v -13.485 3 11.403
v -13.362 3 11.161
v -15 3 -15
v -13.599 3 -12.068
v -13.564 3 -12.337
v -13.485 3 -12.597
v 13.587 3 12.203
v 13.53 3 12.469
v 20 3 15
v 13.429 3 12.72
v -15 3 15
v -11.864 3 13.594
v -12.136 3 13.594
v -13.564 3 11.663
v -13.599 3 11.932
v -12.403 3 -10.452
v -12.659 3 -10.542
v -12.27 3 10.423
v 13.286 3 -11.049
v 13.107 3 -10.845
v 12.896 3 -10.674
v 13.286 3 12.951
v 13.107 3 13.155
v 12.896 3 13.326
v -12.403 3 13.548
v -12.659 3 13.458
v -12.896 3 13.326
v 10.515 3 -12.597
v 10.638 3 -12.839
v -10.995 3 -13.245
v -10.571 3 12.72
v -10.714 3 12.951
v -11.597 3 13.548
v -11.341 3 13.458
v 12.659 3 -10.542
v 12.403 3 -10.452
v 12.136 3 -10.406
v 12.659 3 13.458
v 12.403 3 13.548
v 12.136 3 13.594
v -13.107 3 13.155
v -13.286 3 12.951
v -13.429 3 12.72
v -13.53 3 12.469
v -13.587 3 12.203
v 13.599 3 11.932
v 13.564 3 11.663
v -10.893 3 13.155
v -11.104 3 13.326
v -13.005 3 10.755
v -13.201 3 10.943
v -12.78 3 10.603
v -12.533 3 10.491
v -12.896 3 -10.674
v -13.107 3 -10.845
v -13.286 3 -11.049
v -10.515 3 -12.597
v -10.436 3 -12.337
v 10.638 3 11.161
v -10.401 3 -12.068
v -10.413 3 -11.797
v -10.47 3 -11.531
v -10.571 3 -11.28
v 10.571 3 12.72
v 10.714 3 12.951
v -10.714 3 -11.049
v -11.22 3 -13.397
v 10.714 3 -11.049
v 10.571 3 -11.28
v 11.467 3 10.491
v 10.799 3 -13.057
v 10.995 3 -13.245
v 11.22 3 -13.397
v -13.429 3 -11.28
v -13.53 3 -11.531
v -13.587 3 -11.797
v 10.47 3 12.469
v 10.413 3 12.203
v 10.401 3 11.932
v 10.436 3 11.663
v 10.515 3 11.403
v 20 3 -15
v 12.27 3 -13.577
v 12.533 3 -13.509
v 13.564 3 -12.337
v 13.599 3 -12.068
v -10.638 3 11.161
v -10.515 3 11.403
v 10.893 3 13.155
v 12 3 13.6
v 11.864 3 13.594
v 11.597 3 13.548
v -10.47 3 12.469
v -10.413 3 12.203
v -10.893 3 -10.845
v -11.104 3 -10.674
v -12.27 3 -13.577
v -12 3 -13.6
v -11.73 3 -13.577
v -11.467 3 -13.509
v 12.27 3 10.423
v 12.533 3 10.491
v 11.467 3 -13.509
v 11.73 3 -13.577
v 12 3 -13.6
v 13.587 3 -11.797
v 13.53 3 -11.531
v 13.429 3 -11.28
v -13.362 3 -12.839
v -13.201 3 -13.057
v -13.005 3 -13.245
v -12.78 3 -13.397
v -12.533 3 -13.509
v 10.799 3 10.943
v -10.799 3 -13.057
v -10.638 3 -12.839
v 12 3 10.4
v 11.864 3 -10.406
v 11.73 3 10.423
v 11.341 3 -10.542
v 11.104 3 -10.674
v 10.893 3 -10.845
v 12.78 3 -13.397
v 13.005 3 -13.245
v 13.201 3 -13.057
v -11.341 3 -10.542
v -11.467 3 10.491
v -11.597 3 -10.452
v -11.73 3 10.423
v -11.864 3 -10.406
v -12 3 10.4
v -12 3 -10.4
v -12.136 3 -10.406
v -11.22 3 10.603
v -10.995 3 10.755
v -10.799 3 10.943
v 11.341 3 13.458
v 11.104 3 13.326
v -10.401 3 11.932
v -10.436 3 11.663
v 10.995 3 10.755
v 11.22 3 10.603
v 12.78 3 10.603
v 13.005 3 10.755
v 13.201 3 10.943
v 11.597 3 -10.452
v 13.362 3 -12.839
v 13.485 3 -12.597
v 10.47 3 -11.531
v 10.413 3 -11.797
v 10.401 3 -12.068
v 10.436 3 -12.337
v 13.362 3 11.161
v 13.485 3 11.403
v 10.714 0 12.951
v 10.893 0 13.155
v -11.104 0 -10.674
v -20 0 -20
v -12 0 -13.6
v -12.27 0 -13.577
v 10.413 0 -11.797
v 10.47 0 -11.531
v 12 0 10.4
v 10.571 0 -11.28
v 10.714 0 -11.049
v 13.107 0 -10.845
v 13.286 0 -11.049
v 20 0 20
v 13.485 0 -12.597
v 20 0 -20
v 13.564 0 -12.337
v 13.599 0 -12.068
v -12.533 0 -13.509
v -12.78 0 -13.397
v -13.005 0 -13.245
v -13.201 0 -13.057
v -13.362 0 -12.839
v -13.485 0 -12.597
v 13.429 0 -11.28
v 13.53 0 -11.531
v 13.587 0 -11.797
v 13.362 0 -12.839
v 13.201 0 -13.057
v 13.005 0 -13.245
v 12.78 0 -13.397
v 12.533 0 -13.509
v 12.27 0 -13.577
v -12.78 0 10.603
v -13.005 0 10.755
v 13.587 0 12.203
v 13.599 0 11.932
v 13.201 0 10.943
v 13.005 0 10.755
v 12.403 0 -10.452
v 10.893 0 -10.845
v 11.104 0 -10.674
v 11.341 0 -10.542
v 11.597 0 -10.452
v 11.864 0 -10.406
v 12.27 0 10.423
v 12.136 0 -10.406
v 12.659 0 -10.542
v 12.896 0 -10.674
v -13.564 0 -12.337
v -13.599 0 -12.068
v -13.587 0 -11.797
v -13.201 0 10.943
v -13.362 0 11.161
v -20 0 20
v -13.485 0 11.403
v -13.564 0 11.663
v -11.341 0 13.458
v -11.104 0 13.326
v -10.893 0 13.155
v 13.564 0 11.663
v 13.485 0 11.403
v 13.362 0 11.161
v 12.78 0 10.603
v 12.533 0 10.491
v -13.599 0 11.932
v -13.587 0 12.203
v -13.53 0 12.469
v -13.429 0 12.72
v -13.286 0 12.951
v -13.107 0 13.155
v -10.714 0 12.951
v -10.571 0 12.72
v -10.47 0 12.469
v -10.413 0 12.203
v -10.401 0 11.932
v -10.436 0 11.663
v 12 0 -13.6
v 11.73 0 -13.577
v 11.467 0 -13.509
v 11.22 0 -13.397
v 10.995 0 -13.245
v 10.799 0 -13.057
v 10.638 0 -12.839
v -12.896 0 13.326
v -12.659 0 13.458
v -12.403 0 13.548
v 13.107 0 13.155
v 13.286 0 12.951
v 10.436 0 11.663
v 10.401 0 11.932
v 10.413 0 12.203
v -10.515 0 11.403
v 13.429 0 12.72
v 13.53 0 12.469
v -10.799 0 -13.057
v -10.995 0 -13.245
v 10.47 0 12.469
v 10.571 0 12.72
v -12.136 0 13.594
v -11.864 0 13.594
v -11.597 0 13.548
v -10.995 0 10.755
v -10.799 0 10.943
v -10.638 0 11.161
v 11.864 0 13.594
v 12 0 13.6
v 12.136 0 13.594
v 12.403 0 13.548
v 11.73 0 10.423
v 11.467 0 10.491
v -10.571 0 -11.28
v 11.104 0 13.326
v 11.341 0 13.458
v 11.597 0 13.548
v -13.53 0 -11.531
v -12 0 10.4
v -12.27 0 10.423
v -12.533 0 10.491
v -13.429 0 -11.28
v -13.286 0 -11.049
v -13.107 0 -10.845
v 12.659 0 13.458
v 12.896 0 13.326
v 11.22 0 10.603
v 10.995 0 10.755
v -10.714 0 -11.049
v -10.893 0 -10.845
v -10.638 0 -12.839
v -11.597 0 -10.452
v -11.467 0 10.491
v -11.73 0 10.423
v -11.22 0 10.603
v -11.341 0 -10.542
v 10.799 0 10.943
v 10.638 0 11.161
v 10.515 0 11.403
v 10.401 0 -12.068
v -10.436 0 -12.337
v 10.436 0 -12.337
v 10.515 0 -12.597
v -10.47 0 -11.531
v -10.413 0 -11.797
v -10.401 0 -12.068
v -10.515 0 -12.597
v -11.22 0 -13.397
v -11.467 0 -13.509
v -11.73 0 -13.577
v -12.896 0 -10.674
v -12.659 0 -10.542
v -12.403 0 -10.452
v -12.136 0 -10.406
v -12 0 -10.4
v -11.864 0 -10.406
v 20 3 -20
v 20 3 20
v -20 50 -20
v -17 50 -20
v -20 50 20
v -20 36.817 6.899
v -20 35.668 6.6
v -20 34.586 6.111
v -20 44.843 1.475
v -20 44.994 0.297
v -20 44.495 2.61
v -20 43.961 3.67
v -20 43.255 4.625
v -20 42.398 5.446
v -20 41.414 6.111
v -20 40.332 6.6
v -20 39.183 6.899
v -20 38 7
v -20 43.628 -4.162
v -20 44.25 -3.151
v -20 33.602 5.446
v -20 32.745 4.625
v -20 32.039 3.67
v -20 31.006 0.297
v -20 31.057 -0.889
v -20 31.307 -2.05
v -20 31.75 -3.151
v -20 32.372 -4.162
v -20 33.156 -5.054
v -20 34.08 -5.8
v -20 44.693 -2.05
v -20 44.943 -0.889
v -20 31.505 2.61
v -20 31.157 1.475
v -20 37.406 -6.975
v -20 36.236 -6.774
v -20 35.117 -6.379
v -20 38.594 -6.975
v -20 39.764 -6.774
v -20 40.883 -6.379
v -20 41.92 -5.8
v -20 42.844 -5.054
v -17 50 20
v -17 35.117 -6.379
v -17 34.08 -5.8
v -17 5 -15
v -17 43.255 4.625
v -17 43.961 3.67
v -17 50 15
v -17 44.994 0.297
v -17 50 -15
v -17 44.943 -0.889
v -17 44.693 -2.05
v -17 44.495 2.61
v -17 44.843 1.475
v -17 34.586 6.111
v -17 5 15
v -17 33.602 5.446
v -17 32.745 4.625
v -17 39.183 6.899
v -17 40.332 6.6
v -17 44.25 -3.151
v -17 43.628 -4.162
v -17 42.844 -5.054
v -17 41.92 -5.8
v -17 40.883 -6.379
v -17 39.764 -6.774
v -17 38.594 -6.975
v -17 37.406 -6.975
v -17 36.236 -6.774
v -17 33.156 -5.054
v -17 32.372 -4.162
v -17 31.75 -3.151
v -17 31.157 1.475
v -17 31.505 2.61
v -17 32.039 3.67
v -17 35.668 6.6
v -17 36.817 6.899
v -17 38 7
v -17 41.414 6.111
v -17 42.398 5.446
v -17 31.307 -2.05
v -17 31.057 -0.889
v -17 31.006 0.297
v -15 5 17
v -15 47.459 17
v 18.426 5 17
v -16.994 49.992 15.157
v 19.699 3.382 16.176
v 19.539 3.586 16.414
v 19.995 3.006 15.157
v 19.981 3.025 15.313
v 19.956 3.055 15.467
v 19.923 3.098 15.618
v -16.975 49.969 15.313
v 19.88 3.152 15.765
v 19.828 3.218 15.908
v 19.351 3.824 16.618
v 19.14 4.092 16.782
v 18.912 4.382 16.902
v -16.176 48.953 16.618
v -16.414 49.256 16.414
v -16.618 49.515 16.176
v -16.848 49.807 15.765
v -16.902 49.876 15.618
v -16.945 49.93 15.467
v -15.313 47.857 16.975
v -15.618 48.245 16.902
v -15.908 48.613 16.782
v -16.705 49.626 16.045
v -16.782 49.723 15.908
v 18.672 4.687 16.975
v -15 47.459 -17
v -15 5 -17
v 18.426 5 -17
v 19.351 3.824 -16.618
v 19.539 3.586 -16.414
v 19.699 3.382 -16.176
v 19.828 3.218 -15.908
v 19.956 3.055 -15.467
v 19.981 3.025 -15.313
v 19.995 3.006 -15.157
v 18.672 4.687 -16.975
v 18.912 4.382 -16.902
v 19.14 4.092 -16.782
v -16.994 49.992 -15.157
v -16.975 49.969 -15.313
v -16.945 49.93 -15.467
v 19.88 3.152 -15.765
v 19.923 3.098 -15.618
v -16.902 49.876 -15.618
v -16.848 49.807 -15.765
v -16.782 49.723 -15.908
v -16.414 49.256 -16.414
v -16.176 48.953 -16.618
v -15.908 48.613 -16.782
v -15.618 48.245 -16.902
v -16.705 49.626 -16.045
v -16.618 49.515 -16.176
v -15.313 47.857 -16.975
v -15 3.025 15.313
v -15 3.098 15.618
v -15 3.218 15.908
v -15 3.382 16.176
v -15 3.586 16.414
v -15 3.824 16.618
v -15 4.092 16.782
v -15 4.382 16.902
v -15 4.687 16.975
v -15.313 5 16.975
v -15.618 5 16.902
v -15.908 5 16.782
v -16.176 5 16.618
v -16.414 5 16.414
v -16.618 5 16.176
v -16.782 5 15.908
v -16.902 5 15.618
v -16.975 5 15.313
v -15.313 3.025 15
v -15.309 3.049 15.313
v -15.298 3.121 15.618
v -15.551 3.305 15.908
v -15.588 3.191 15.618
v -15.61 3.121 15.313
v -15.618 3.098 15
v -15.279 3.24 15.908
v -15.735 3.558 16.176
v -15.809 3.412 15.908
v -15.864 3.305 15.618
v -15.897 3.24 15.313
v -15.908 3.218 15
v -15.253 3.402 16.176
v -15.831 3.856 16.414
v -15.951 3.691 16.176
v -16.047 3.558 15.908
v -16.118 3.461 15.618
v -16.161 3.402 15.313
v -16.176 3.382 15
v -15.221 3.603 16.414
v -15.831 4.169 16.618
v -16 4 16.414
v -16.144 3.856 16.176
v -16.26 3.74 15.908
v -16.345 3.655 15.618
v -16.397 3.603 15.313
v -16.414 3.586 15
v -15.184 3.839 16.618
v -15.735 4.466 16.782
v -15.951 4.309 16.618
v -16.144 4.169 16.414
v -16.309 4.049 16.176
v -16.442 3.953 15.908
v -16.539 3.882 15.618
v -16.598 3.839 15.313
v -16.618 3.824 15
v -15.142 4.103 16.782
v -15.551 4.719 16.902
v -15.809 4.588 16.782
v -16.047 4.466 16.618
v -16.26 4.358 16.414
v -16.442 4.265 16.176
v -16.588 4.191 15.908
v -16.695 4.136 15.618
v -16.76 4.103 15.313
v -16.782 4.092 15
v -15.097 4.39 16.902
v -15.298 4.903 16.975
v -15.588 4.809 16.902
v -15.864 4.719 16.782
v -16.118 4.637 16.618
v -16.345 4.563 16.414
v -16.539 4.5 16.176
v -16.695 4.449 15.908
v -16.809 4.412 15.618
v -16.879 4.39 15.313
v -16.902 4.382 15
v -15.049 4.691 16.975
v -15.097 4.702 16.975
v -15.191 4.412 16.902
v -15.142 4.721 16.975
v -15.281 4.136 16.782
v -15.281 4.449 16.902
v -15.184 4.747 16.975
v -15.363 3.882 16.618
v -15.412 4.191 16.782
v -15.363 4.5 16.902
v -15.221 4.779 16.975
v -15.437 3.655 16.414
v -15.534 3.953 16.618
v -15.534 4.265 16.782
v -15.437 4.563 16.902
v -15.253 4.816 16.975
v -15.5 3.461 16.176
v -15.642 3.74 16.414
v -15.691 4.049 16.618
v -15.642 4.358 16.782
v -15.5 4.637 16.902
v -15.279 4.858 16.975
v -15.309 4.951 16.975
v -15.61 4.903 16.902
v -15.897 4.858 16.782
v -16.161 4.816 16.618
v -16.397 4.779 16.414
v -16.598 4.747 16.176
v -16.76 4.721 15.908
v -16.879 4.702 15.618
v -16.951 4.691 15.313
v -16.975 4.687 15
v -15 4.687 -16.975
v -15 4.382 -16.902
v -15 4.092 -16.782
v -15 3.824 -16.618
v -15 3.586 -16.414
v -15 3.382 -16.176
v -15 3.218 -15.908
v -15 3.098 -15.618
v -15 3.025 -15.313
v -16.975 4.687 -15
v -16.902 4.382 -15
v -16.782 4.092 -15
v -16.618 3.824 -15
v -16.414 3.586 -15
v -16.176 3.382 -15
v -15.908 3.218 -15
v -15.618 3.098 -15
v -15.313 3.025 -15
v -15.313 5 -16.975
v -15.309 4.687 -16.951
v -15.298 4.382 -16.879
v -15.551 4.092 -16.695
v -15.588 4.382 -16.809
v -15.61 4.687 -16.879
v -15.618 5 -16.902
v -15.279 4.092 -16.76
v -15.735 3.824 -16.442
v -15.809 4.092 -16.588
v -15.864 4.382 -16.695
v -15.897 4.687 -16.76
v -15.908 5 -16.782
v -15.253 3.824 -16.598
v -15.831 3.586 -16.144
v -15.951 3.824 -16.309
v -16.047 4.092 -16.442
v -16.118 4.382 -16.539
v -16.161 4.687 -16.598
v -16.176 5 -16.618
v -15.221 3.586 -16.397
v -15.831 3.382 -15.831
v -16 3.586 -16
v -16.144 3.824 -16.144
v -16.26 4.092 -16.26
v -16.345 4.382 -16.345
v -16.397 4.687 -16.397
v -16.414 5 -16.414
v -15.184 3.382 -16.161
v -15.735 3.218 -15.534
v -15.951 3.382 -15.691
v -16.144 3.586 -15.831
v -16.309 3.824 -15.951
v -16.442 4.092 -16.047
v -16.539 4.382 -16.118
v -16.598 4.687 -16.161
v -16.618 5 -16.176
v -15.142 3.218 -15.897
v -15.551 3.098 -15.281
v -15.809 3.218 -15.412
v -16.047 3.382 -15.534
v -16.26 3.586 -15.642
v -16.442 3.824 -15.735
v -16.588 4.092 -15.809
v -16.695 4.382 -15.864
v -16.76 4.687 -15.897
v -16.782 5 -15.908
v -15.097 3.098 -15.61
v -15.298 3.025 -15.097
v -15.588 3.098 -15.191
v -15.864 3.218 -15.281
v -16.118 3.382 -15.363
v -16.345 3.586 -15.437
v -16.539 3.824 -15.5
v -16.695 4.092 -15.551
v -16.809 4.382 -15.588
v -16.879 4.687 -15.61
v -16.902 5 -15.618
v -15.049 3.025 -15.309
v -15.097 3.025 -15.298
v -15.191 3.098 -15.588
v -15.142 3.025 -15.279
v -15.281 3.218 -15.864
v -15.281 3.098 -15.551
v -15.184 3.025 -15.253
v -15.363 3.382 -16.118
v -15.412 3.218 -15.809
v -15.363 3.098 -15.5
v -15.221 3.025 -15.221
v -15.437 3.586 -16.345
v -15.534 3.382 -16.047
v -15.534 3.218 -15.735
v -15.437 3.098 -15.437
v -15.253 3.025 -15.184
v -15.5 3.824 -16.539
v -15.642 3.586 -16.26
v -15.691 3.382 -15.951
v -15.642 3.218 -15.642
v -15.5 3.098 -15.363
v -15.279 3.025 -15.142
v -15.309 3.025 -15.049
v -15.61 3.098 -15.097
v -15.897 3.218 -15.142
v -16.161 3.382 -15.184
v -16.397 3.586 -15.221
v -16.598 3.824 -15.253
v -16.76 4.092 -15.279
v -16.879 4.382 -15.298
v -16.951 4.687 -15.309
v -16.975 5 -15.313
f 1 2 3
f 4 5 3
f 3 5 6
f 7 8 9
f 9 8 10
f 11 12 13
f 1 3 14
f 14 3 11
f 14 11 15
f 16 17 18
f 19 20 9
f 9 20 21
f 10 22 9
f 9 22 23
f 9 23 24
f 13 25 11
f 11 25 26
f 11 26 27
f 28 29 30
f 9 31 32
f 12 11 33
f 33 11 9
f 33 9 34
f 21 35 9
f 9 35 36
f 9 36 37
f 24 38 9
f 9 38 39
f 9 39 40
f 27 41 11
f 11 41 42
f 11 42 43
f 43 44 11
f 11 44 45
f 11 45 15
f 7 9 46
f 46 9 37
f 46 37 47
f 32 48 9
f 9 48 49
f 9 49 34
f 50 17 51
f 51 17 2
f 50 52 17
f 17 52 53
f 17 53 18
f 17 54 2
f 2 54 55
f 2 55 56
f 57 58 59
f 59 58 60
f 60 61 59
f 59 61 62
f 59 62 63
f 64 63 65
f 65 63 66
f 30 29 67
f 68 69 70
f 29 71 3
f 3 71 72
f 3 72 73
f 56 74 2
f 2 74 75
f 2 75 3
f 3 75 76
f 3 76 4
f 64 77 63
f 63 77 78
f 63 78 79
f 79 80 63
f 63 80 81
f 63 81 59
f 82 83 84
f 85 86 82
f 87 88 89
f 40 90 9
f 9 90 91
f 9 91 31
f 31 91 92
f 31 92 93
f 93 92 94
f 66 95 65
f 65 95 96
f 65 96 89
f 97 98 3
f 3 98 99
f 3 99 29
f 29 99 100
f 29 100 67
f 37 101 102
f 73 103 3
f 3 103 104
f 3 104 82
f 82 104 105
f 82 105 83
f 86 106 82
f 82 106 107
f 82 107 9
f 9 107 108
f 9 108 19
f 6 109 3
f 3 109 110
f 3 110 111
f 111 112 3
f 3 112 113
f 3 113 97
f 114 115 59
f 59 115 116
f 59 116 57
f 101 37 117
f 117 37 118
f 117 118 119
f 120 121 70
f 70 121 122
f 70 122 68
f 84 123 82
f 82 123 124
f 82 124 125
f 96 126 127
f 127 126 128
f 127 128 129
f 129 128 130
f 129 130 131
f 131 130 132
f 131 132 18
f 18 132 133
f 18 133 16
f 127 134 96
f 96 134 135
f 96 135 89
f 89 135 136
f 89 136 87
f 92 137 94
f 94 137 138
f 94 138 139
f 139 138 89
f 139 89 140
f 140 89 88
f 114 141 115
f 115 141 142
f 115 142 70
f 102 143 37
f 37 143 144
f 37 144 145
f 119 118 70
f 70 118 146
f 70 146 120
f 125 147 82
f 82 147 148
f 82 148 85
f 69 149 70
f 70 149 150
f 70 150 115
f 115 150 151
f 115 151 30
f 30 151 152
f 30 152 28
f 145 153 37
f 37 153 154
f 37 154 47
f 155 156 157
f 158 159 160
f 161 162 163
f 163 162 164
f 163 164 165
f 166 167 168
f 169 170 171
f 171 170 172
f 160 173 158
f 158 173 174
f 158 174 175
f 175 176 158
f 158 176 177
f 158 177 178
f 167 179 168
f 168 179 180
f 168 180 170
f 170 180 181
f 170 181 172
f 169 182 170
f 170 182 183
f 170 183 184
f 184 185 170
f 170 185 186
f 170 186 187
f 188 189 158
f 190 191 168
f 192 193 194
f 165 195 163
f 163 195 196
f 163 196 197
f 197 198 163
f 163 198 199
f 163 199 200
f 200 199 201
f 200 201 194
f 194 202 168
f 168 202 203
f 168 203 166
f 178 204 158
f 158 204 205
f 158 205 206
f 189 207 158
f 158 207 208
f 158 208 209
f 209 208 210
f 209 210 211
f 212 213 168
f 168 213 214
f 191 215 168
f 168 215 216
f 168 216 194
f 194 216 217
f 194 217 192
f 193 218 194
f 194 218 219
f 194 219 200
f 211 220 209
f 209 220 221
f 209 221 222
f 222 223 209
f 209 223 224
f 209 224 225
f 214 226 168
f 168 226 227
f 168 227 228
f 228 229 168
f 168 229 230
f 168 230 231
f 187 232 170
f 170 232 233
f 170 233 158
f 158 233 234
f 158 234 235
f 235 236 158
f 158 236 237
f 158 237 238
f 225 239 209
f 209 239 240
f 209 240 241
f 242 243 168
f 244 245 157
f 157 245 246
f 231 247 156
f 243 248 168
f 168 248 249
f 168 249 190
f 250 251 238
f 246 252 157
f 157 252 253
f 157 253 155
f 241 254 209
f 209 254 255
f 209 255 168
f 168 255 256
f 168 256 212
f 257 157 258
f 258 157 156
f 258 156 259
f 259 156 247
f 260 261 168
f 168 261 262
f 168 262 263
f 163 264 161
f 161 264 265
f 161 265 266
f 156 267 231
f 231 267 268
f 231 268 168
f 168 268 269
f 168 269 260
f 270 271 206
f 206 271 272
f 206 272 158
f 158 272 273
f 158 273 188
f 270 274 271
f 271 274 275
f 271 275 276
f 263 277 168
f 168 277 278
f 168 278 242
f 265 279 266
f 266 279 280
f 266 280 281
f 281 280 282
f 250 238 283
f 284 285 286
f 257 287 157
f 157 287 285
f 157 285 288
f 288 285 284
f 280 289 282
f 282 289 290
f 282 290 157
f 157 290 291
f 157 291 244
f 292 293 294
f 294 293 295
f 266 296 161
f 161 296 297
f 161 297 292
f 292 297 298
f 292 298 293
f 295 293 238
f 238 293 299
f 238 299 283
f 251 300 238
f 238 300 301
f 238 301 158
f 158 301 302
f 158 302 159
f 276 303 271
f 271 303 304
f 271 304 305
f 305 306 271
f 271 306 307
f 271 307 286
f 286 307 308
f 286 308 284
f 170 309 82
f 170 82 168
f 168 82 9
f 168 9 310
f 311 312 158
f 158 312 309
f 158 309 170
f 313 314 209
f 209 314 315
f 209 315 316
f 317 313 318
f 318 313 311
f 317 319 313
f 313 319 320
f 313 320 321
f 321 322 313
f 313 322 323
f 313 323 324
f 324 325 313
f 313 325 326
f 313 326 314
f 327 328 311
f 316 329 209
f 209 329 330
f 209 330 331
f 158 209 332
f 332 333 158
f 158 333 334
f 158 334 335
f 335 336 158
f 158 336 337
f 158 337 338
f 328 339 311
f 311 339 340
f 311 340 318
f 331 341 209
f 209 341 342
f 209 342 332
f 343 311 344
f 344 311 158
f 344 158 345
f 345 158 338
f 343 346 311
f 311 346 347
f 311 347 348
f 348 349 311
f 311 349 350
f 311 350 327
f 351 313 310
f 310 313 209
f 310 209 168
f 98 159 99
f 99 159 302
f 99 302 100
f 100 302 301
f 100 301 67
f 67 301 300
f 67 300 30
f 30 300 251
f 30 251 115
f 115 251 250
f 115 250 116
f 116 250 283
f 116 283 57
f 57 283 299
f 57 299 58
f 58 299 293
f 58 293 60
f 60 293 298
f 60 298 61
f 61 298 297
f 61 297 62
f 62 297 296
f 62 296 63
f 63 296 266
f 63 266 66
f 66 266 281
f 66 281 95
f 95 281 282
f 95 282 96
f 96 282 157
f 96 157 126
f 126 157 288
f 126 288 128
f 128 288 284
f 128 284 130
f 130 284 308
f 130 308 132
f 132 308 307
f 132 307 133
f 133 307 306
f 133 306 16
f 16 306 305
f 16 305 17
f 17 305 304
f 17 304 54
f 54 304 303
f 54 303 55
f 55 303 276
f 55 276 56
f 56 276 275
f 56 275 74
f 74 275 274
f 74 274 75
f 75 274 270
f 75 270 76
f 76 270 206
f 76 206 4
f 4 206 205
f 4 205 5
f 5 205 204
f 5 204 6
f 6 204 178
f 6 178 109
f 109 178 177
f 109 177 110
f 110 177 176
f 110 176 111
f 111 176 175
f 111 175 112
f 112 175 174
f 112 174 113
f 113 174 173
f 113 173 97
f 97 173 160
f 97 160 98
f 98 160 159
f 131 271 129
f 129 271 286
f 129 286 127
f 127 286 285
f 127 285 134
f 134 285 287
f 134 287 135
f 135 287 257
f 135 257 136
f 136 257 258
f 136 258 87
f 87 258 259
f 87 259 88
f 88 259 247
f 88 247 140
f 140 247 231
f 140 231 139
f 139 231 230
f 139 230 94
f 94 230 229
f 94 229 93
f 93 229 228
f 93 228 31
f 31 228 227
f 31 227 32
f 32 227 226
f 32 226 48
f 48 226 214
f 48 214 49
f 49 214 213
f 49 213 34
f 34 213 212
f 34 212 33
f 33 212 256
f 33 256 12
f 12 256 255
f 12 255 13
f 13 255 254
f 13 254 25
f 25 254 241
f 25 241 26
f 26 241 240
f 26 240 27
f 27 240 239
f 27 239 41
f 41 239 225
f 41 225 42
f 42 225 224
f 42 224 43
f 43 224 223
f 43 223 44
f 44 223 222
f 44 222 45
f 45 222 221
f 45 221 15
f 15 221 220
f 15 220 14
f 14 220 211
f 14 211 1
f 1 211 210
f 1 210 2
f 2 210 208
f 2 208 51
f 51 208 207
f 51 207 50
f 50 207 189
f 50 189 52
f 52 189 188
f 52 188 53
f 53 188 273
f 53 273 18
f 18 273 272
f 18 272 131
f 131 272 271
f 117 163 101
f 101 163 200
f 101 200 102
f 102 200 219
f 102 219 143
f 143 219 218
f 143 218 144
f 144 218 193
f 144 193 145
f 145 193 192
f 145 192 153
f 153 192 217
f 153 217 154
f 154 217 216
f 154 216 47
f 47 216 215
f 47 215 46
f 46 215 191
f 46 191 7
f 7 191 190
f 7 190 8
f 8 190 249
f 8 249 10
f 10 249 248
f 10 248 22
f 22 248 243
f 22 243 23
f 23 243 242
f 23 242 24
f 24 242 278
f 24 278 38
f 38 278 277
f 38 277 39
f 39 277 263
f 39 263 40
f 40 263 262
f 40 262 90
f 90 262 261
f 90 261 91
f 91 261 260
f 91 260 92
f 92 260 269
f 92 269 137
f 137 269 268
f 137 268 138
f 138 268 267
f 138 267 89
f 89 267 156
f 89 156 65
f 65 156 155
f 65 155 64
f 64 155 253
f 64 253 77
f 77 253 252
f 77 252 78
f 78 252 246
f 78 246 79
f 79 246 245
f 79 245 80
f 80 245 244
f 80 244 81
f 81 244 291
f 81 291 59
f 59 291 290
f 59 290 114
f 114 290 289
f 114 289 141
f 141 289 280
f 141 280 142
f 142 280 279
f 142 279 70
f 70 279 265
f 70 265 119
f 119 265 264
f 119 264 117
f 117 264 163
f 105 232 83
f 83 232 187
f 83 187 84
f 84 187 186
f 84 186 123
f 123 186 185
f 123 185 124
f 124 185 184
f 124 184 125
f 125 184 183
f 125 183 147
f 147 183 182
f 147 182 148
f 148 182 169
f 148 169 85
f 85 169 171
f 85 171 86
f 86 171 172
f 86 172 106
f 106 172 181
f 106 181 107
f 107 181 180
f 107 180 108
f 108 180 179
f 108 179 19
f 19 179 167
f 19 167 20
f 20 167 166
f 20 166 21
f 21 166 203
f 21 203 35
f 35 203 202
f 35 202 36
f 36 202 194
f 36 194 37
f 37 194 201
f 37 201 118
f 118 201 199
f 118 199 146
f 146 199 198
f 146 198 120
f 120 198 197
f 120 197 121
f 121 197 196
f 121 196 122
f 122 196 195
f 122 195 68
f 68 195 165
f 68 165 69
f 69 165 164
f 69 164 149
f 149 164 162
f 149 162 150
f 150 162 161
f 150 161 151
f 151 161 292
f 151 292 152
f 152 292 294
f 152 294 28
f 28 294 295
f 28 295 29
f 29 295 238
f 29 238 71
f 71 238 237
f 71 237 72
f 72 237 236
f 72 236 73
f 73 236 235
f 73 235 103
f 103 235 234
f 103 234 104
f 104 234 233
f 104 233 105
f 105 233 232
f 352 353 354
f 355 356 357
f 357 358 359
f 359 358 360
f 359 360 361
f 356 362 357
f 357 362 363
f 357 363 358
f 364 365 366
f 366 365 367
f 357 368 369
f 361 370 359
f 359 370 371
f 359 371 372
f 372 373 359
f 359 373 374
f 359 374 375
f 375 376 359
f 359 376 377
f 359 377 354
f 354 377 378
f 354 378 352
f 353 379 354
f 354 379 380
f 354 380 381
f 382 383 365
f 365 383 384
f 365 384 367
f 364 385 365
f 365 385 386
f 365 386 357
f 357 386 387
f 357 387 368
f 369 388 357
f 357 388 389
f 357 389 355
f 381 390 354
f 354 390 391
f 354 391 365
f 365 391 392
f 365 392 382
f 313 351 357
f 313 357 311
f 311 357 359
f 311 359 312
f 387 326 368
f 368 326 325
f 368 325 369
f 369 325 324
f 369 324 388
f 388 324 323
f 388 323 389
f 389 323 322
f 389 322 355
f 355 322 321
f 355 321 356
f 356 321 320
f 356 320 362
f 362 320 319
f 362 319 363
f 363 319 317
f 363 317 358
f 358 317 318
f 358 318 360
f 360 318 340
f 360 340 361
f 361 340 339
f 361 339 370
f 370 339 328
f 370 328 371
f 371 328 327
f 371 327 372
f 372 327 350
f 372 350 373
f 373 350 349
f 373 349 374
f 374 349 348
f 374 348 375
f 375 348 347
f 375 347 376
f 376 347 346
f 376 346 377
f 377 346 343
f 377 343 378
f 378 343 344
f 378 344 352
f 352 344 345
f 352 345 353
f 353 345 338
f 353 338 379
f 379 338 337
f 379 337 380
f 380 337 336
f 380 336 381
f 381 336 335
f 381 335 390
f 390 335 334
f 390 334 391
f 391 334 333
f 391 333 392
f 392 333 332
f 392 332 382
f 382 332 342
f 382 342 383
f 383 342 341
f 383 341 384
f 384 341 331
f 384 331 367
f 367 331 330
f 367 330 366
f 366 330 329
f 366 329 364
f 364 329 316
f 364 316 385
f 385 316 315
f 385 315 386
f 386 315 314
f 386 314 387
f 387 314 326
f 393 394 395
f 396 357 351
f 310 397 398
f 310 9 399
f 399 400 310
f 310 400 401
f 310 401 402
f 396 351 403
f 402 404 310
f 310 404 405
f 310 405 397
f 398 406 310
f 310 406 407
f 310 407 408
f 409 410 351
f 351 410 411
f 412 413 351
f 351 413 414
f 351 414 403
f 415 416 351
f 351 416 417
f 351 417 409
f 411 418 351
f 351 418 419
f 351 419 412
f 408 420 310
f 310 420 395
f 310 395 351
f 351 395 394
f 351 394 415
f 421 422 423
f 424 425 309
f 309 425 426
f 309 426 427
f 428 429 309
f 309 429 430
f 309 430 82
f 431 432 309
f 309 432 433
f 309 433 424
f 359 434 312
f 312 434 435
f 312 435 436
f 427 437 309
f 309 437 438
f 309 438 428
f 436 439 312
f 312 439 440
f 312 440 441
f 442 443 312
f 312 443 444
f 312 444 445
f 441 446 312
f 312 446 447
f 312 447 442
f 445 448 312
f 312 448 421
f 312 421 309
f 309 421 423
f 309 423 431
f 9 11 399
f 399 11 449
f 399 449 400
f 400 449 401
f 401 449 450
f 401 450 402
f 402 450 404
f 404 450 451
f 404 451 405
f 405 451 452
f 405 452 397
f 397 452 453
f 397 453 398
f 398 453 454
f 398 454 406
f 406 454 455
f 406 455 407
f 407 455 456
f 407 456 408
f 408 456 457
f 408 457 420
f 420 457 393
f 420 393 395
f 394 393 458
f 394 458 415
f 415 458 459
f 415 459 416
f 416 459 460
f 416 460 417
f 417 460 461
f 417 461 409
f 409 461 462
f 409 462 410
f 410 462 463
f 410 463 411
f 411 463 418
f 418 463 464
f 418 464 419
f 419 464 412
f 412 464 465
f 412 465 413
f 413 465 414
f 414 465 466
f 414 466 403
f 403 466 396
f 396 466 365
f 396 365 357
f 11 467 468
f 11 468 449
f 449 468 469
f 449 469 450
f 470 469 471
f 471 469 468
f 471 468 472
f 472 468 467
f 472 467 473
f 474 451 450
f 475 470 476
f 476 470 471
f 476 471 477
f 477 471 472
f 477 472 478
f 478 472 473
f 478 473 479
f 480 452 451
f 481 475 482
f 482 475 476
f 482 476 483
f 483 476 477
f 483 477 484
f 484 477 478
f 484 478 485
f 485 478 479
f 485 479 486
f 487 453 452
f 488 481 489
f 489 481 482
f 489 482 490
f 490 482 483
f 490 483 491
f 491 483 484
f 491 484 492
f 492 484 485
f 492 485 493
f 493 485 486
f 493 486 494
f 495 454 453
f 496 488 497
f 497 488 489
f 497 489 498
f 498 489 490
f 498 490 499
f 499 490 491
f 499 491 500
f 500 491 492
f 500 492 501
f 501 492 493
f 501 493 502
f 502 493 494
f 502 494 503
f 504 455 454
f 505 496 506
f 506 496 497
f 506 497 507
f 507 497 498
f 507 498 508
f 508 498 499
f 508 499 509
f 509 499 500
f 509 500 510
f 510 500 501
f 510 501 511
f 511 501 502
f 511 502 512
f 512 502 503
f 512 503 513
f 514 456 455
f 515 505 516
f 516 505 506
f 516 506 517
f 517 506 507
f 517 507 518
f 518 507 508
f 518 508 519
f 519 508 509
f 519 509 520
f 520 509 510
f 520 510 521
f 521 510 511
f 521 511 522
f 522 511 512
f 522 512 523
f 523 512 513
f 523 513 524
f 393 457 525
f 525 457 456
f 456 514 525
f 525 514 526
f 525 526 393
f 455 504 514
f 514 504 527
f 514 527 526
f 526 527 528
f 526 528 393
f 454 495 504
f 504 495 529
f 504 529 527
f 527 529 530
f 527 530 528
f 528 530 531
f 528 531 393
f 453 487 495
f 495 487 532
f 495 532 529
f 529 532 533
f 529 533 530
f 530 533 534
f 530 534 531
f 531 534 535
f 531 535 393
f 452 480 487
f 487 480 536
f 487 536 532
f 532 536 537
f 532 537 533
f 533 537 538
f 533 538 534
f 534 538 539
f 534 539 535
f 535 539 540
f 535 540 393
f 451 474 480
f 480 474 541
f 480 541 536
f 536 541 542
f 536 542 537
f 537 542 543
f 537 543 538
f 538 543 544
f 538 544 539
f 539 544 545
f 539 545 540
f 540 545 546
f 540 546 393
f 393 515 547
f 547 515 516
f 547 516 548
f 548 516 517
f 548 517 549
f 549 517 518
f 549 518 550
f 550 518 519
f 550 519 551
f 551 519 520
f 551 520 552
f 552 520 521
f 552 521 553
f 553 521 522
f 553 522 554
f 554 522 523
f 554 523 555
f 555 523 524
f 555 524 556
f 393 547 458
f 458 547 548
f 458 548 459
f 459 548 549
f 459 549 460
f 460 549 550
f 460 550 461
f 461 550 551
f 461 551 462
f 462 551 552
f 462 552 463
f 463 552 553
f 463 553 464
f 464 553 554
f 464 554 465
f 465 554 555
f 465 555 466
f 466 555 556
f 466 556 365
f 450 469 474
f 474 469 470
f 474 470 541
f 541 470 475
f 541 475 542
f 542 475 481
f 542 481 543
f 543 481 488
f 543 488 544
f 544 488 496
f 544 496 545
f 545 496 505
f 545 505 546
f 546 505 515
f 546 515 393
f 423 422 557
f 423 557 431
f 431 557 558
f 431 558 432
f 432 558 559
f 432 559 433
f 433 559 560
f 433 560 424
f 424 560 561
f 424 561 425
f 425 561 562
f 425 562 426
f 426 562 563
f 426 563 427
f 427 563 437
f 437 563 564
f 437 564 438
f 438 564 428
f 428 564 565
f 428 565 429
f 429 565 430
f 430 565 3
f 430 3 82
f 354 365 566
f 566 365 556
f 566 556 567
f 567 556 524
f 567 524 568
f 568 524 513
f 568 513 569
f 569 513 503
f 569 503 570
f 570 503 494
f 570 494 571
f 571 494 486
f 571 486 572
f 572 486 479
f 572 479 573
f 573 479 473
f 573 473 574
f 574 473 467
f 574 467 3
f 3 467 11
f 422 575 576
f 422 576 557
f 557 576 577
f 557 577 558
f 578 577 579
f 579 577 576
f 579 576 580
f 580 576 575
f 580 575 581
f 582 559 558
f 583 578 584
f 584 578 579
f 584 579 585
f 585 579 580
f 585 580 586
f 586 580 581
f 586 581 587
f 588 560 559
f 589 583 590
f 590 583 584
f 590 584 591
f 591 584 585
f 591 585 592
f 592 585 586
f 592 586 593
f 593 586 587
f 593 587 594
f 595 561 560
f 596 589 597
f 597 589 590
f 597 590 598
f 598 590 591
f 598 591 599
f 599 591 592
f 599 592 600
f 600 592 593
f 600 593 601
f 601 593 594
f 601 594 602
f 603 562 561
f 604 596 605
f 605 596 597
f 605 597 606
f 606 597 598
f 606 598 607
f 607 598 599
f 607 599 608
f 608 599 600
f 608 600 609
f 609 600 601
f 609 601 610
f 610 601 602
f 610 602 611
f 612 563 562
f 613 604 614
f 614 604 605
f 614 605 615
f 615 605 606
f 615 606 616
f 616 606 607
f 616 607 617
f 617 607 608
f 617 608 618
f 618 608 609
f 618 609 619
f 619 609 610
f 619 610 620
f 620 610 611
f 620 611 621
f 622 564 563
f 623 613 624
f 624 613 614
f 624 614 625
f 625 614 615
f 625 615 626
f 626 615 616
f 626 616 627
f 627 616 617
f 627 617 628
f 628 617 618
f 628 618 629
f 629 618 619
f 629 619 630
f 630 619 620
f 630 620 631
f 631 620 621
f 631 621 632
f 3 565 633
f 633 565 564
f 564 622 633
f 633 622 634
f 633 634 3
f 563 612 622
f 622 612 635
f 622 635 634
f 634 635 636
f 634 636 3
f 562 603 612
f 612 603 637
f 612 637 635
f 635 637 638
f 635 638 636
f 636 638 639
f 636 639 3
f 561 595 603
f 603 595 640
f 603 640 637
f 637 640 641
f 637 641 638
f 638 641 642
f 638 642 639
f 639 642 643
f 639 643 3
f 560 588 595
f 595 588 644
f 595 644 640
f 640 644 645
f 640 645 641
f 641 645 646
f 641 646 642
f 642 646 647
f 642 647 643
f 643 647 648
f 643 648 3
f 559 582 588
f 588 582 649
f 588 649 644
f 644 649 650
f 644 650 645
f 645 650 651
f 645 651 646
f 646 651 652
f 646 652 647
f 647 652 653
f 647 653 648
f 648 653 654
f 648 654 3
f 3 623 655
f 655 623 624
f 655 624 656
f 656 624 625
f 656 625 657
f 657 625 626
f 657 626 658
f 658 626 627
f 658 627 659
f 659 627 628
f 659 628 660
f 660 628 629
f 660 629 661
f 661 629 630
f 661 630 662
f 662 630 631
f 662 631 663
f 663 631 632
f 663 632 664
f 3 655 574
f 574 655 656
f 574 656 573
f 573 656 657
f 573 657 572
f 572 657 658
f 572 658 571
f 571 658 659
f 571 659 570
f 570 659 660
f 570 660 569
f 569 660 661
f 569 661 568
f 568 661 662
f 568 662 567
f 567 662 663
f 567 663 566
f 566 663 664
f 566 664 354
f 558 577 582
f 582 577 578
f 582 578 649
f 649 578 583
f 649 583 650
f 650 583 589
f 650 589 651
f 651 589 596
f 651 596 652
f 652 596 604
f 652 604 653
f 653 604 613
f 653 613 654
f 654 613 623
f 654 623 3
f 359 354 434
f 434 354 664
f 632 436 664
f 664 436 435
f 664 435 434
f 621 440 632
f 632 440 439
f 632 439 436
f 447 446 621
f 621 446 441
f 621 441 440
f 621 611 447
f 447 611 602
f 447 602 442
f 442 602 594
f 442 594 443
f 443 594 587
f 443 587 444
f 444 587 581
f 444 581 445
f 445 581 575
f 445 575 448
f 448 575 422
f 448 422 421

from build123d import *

# Parameters (mm, degrees)
SKETCH3_W           = 40
SKETCH3_H           = 40
SKETCH3_R           = 1.6
BOSS_EXTRUDE2_DEPTH = 3
SKETCH4_W           = 40
SKETCH4_H           = 50
SKETCH4_R           = 7
BOSS_EXTRUDE3_DEPTH = 3
BOSS_EXTRUDE4_DEPTH = 3
FILLET1_R           = 2


with BuildPart() as part:
    # Sketch3 → Boss-Extrude2 (new body)
    with BuildSketch(Plane(origin=(0, 0, 0), x_dir=(1, 0, 0), z_dir=(0, 1, 0))):
        Rectangle(SKETCH3_W, SKETCH3_H)
        with Locations(Location((-12, 12, 0), (0, 0, 270))):
            Circle(SKETCH3_R, mode=Mode.SUBTRACT)
        with Locations(Location((-12, -12, 0), (0, 0, 90))):
            Circle(SKETCH3_R, mode=Mode.SUBTRACT)
        with Locations(Location((12, -12, 0), (0, 0, 270))):
            Circle(SKETCH3_R, mode=Mode.SUBTRACT)
        with Locations(Location((12, 12, 0), (0, 0, 90))):
            Circle(SKETCH3_R, mode=Mode.SUBTRACT)
    extrude(amount=BOSS_EXTRUDE2_DEPTH)

    # Sketch4 → Boss-Extrude3 (add)
    with BuildSketch(Plane.ZY.offset(20)):
        with Locations((0, 25)):
            Rectangle(SKETCH4_W, SKETCH4_H)
        with Locations((0, 38)):
            Circle(SKETCH4_R, mode=Mode.SUBTRACT)
    extrude(amount=-BOSS_EXTRUDE3_DEPTH)

    # Sketch5 → Boss-Extrude4 (add)
    with BuildSketch(Plane.XY.offset(20)):
        Polygon((-20, 50), (-17, 50), (20, 3), (20, 0), (-20, 0), align=None)
    boss_extrude4 = extrude(amount=-BOSS_EXTRUDE4_DEPTH)

    # Mirror1: Boss-Extrude4 across plane
    add(boss_extrude4.mirror(Plane.XY))

    # Fillet1
    fillet1_edges = [part.edges().sort_by_distance(p)[0] for p in [
        (-17, 26.5, 17),
        (1.5, 3, 17),
        (-17, 3, 0),
        (-17, 26.5, -17),
        (1.5, 3, -17),
    ]]
    fillet(fillet1_edges, radius=FILLET1_R)


solid = part.part
